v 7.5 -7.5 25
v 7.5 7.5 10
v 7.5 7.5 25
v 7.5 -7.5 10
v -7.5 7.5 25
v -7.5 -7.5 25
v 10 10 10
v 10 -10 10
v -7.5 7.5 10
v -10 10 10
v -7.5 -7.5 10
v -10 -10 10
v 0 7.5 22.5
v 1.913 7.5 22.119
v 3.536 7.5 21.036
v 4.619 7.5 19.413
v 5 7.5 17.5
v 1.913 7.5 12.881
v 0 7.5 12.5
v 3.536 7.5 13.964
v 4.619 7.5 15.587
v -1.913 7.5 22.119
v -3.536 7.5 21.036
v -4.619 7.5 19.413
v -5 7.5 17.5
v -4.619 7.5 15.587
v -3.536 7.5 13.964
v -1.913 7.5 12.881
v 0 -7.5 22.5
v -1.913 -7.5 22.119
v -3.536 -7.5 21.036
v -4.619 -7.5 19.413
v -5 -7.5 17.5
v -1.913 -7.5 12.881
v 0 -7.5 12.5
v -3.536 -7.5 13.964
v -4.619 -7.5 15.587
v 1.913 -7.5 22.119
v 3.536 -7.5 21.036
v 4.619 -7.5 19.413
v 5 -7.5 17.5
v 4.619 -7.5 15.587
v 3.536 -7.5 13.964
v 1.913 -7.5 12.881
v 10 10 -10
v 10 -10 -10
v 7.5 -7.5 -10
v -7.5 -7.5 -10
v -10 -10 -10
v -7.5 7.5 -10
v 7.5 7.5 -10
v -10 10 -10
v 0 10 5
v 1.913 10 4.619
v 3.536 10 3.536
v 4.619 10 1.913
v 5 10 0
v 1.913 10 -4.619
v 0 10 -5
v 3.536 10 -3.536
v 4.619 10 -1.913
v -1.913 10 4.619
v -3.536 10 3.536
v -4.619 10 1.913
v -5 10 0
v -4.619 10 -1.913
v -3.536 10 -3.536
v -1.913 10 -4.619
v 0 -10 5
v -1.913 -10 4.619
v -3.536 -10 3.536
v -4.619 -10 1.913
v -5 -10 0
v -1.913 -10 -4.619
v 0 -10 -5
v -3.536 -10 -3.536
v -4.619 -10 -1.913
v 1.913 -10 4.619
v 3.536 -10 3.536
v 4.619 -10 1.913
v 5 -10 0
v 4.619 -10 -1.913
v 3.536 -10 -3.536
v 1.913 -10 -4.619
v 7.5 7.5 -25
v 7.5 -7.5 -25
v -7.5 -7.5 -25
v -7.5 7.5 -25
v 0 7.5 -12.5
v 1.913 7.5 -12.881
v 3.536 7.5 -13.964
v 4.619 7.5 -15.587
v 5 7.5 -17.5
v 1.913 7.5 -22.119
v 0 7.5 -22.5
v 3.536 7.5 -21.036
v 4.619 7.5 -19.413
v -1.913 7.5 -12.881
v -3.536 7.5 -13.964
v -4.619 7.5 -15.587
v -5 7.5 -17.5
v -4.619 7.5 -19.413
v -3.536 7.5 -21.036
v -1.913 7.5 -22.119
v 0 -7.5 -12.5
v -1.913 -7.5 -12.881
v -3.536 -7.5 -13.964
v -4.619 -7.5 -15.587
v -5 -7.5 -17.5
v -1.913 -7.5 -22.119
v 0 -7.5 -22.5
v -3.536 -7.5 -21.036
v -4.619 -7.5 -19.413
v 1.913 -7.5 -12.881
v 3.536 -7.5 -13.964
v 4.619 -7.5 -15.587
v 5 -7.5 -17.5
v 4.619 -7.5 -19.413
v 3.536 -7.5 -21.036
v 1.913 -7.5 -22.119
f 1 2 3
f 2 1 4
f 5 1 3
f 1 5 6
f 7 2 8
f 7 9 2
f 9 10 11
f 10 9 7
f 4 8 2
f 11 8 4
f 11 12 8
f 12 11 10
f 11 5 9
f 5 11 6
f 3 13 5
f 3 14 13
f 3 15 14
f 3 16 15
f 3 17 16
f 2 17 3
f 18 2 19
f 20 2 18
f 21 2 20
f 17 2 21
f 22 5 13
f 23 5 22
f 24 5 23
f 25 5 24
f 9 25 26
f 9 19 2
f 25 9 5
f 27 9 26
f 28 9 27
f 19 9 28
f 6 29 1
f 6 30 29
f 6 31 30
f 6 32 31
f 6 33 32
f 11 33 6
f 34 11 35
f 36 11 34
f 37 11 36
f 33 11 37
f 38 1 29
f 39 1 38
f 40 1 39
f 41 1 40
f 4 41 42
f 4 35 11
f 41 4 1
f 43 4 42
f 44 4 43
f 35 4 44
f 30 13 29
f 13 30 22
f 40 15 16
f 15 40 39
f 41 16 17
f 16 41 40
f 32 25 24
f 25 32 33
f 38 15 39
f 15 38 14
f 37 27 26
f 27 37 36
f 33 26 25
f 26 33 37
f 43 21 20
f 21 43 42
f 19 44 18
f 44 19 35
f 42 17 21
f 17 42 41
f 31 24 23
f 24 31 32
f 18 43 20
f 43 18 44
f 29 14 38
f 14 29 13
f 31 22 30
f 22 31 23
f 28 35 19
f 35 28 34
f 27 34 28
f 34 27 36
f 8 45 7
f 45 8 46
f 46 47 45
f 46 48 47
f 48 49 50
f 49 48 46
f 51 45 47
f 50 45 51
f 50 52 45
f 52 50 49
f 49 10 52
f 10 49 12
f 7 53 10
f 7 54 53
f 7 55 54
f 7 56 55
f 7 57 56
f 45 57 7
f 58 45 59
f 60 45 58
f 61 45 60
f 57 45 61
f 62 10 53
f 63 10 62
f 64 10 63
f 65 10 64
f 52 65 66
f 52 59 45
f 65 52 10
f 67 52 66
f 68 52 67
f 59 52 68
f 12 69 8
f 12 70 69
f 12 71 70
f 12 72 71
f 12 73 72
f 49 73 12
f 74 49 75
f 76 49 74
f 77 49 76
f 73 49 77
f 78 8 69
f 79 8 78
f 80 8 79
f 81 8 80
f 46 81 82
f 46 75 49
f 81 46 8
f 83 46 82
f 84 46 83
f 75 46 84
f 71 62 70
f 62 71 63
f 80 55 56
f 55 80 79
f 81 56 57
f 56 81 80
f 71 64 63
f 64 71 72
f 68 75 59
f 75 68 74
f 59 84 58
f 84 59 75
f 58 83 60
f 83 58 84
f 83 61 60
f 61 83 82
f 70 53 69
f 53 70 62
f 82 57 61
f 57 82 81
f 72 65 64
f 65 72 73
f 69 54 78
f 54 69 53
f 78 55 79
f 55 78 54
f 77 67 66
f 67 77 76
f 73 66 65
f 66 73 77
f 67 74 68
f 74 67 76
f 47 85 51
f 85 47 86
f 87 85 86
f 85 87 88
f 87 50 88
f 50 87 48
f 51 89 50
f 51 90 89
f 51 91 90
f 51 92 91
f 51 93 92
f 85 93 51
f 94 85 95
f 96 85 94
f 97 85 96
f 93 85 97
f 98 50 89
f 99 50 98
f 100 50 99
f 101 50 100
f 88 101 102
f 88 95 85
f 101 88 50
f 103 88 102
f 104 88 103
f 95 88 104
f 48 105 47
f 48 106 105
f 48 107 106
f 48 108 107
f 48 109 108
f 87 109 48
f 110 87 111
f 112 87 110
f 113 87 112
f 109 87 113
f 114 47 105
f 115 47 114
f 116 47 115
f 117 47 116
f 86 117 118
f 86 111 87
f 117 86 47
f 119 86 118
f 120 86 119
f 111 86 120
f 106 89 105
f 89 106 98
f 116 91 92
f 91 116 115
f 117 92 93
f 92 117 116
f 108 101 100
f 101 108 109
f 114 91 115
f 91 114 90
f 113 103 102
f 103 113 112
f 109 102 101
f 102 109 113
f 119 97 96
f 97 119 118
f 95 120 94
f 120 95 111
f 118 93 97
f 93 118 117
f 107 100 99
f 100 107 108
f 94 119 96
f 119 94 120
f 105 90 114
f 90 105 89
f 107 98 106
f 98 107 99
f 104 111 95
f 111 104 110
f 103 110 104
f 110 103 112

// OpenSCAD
// Parameters for the blocks
central_block_size = 20; // Size of the central block (cube)
spacer_block_size = 15;  // Size of the spacer blocks (cube)
hole_diameter = 10;      // Diameter of the cylindrical hole
hole_radius = hole_diameter / 2;

// Function to create a block with a cylindrical hole
module block_with_hole(block_size) {
    difference() {
        // Create the cube
        cube([block_size, block_size, block_size], center = true);
        // Subtract the cylindrical hole
        rotate([90, 0, 0]) {
            cylinder(h = block_size + 2, r = hole_radius, center = true);
        }
    }
}

// Assembly of the flexible coupling
module flexible_coupling() {
    // Layer 1: Spacer block 1
    translate([0, 0, spacer_block_size / 2 + central_block_size / 2]) {
        block_with_hole(spacer_block_size);
    }
    
    // Layer 2: Central block
    translate([0, 0, 0]) {
        block_with_hole(central_block_size);
    }
    
    // Layer 3: Spacer block 2
    translate([0, 0, -(spacer_block_size / 2 + central_block_size / 2)]) {
        block_with_hole(spacer_block_size);
    }
}

// Render the flexible coupling
flexible_coupling();
